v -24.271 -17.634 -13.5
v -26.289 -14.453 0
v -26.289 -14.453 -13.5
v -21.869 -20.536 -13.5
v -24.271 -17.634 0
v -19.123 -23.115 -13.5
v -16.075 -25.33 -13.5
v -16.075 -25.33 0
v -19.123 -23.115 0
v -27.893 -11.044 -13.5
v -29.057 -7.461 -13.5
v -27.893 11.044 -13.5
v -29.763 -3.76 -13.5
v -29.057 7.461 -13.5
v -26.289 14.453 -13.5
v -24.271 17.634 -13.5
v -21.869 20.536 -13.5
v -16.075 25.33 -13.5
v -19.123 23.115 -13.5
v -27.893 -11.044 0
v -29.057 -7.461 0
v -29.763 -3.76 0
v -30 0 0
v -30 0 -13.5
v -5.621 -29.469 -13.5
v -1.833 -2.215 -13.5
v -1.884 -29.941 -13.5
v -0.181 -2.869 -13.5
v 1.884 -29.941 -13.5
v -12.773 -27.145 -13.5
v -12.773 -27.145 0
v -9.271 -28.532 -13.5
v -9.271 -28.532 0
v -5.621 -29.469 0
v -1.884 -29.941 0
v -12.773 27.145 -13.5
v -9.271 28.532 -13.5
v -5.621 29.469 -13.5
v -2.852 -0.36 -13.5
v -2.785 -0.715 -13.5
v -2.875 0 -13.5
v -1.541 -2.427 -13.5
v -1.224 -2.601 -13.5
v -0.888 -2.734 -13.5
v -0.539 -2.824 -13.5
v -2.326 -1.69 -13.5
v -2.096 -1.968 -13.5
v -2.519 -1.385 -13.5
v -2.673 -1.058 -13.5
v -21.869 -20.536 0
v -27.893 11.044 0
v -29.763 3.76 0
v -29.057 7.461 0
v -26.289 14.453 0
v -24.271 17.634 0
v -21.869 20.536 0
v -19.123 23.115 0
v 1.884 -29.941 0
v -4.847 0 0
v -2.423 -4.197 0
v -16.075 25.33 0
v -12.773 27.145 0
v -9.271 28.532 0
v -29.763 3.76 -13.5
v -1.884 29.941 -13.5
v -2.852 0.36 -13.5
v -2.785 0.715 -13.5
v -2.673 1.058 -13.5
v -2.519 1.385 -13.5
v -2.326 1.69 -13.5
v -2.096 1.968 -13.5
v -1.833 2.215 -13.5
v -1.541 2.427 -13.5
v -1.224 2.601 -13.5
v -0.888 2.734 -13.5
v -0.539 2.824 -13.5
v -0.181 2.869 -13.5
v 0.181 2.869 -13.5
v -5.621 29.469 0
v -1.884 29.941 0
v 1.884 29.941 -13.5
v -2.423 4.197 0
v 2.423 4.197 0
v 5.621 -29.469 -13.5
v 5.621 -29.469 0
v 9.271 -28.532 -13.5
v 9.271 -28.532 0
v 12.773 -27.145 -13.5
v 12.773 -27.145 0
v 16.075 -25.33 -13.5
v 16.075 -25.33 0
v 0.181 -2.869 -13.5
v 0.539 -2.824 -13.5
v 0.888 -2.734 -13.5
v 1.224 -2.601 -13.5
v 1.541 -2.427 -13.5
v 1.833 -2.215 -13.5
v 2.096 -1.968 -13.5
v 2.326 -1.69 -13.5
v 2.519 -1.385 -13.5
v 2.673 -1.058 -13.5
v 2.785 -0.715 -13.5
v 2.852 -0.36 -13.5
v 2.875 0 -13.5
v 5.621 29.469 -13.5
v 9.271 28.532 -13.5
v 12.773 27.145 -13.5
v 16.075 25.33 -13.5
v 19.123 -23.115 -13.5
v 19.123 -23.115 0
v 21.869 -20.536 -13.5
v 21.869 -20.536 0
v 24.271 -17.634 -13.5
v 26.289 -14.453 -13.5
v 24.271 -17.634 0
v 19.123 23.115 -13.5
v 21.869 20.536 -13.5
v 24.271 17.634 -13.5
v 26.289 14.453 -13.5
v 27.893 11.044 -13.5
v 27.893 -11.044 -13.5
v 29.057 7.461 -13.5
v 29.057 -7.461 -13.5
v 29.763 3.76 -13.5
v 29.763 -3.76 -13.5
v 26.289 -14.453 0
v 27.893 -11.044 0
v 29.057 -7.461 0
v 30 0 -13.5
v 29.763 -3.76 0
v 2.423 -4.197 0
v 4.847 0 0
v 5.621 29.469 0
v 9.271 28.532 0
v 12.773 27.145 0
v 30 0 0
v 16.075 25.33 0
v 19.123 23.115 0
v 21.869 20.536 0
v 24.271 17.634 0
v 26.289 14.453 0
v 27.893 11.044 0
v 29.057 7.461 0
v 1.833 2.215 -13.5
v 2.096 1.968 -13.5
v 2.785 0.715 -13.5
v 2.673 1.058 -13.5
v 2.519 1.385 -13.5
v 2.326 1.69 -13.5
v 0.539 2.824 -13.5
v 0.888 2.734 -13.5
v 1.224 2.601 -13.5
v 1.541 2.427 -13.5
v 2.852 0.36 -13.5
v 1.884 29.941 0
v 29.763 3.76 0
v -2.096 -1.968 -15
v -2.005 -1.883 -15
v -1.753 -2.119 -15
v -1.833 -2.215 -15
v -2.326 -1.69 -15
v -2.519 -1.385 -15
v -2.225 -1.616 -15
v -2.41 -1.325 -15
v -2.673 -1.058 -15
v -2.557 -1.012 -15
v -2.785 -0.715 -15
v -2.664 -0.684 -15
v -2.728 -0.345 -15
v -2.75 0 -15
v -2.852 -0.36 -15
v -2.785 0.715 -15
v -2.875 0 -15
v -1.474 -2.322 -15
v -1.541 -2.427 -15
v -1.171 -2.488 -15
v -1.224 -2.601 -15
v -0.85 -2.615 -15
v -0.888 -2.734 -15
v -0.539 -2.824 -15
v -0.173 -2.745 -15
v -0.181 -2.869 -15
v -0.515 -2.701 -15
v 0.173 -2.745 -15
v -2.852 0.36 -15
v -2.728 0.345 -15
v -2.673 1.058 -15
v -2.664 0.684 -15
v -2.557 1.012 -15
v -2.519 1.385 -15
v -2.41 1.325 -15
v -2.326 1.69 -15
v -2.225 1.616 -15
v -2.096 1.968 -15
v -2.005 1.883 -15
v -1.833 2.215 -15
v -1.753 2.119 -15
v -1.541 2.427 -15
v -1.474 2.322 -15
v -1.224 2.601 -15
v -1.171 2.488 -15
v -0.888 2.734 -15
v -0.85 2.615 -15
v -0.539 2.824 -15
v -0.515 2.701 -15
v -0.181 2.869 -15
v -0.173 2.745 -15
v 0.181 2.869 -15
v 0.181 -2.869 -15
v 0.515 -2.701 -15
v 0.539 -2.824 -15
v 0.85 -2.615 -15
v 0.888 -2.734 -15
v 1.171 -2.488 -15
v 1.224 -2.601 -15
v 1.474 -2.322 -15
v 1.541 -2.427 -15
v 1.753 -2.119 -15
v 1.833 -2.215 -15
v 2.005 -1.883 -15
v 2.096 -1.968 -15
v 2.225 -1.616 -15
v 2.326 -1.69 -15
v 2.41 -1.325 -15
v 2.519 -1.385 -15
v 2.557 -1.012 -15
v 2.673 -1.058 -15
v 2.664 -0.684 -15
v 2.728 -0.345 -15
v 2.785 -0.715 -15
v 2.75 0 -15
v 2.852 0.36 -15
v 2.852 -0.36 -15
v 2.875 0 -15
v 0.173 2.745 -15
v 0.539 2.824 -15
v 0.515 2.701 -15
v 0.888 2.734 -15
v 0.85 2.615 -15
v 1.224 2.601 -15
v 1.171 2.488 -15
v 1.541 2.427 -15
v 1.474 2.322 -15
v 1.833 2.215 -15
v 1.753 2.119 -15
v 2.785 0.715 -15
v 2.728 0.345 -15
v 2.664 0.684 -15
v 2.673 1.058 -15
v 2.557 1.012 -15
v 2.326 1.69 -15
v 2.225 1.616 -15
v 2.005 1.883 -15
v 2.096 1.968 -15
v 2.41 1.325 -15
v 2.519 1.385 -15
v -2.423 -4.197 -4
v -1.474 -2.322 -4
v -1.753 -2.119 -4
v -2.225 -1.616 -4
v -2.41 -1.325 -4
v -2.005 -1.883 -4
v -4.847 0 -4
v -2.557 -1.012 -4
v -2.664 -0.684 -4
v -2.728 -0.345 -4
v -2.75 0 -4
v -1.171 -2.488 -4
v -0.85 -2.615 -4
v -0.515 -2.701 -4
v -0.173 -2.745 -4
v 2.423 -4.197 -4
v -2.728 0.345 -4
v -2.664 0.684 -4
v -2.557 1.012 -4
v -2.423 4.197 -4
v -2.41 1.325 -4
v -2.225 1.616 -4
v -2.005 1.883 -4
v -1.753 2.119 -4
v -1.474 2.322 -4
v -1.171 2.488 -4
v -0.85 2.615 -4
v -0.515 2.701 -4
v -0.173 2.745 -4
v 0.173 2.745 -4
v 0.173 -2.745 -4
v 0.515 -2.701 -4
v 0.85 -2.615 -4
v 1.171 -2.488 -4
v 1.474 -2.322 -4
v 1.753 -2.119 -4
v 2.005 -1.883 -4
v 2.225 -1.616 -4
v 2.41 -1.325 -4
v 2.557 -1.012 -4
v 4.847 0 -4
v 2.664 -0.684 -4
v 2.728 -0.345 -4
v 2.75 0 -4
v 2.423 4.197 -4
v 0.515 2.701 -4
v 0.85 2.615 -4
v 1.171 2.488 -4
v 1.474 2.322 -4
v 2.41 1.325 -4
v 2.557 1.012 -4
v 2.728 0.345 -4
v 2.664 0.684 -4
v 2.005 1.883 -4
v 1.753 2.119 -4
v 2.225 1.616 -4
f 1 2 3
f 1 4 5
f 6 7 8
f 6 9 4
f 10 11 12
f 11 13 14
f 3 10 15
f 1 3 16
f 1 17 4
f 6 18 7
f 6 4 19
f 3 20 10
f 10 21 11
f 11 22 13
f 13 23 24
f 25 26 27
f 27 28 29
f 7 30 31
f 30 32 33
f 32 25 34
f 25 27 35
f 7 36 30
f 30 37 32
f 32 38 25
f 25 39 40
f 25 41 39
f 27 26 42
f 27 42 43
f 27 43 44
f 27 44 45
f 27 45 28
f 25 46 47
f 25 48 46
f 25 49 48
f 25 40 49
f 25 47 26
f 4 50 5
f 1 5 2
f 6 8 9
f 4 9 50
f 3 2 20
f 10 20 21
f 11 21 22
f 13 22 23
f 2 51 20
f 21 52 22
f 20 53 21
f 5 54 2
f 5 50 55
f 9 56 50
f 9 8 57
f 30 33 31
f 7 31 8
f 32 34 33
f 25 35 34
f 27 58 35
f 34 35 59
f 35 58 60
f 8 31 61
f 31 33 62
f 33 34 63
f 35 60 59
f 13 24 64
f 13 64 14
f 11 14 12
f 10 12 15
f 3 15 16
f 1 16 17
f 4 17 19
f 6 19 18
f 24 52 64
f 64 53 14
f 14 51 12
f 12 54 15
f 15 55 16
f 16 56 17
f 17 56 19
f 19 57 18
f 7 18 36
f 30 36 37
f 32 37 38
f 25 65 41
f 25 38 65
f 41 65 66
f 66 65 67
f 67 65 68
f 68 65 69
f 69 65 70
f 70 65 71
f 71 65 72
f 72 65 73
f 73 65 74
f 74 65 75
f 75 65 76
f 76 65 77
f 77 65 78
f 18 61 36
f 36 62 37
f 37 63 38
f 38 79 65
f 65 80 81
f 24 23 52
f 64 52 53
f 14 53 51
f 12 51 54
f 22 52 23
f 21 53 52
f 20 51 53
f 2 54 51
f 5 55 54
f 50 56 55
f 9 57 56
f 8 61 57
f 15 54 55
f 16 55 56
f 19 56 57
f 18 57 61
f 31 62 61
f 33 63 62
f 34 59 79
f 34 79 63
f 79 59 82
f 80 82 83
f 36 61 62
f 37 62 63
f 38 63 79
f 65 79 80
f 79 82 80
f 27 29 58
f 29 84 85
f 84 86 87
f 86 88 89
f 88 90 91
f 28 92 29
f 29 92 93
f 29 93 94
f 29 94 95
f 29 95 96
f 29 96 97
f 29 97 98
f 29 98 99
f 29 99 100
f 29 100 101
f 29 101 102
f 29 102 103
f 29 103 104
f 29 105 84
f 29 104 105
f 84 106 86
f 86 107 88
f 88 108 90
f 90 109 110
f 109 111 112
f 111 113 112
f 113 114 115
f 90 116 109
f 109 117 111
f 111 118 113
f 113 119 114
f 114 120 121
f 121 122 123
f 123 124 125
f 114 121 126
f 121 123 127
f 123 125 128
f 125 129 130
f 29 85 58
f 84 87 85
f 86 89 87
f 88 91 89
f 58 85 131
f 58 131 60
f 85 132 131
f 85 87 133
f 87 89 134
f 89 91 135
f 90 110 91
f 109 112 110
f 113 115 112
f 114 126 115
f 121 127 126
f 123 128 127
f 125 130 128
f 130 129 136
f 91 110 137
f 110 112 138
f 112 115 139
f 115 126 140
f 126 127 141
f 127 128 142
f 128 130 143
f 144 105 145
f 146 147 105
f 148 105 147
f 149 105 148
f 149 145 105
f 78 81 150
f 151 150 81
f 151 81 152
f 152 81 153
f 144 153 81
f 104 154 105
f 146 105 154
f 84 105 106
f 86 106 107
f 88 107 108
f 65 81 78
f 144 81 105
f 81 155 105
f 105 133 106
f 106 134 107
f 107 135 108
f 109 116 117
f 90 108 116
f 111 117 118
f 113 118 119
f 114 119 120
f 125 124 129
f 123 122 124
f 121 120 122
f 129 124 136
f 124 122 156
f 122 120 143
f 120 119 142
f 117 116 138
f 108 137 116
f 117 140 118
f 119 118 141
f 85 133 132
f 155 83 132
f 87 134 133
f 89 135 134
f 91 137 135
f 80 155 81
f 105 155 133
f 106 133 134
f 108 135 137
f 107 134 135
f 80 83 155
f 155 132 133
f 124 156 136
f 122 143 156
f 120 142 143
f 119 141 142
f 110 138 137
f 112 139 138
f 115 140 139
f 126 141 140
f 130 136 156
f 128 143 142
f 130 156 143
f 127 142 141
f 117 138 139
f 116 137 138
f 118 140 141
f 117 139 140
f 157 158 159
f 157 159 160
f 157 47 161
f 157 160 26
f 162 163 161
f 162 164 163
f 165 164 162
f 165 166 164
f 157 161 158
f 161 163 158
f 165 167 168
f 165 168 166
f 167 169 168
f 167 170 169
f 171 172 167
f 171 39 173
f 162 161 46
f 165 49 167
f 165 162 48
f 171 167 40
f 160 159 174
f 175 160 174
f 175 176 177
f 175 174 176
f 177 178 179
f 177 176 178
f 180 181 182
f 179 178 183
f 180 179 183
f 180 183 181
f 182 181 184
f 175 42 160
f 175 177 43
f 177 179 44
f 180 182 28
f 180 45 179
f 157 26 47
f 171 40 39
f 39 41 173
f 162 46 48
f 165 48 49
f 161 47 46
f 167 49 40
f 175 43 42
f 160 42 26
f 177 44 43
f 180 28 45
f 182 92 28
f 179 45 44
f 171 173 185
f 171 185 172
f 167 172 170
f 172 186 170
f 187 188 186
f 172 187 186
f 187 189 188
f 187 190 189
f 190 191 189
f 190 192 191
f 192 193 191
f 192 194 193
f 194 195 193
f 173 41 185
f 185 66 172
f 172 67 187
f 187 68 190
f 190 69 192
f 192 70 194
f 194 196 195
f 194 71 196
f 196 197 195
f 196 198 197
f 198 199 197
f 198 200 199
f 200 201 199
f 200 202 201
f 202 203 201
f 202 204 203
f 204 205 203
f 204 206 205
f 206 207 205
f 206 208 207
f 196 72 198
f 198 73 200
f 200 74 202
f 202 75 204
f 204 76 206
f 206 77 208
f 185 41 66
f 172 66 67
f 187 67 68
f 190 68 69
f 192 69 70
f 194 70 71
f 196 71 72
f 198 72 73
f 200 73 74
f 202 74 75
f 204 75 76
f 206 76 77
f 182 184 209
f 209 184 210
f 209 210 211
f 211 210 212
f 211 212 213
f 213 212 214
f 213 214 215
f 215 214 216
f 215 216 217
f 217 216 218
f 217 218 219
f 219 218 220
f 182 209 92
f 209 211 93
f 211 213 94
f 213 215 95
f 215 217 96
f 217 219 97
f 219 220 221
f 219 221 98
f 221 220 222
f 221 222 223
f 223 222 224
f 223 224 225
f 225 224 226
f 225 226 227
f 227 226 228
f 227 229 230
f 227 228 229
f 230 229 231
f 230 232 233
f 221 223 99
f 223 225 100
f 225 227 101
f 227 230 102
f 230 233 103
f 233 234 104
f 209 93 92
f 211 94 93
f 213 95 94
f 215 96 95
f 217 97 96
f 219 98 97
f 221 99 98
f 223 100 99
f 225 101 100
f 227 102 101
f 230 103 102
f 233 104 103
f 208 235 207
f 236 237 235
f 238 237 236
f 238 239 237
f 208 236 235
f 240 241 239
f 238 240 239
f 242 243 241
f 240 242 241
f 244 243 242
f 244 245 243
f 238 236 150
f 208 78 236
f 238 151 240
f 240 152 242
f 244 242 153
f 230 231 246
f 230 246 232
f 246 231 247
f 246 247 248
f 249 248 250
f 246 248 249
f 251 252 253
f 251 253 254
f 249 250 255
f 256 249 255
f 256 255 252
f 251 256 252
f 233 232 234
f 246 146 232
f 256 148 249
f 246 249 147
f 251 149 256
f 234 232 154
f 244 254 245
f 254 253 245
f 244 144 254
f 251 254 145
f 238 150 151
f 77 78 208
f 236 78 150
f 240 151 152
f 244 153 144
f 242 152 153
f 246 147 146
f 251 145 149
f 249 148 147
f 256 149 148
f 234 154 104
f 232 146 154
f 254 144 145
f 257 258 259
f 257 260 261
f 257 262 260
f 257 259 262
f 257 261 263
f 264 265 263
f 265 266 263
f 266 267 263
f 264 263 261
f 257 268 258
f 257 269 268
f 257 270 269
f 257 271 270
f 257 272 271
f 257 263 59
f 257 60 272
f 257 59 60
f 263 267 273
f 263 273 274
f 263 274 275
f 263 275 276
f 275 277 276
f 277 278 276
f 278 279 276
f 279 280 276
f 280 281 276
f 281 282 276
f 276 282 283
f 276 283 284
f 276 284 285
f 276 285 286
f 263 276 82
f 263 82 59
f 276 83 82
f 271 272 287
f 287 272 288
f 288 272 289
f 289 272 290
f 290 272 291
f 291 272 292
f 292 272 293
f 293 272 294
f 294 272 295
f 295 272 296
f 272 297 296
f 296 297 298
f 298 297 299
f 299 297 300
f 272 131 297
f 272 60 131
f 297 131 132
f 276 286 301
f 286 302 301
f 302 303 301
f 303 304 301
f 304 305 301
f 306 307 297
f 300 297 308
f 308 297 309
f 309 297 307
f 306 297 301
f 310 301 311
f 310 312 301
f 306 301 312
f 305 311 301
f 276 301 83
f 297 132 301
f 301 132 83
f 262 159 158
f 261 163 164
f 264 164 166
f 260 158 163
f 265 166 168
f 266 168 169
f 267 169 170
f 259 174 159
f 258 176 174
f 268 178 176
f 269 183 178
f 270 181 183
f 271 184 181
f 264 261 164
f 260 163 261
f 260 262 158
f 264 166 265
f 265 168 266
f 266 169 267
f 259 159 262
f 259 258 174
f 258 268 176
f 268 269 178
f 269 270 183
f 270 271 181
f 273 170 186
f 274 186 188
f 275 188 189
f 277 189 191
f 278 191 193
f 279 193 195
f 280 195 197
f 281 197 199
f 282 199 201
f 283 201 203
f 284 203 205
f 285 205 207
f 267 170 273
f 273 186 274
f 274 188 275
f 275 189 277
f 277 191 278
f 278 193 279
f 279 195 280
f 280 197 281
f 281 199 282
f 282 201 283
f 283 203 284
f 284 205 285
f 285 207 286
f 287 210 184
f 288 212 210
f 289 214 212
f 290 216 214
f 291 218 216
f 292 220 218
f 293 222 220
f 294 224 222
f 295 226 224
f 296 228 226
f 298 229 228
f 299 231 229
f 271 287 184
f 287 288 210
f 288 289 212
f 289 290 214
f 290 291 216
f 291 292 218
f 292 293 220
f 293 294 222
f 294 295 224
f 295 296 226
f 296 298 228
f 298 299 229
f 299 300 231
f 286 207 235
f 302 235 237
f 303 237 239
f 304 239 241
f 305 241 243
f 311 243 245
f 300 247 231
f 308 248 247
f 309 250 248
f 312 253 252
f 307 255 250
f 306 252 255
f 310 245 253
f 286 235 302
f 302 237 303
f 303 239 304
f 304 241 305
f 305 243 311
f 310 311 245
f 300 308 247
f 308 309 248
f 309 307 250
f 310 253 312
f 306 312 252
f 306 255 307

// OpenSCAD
$fn = 50;

difference() {
	union() {
		translate(v = [0, 0, -13.5]) {
			cylinder(h = 13.5, r = 30.0);
		}
		#translate(v = [0, 0, -15.0]) {
			cylinder(h = 15, r = 2.875);
		}
	}
	union() {
		translate(v = [0, 0, 0]) {
			rotate(a = [0, 0, 0]) {
				difference() {
					union() {
						translate(v = [0, 0, -4]) {
							linear_extrude(height = 4) {
								polygon(points = [[4.8468, 0.0], [2.4234000000000004, 4.197451927062417], [-2.423399999999999, 4.197451927062417], [-4.8468, 5.935618106107392e-16], [-2.423400000000002, -4.197451927062416], [2.423399999999997, -4.197451927062419]]);
							}
						}
					}
					union();
				}
			}
		}
		#translate(v = [0, 0, -100.0]) {
			cylinder(h = 200, r = 2.75);
		}
	}
}
